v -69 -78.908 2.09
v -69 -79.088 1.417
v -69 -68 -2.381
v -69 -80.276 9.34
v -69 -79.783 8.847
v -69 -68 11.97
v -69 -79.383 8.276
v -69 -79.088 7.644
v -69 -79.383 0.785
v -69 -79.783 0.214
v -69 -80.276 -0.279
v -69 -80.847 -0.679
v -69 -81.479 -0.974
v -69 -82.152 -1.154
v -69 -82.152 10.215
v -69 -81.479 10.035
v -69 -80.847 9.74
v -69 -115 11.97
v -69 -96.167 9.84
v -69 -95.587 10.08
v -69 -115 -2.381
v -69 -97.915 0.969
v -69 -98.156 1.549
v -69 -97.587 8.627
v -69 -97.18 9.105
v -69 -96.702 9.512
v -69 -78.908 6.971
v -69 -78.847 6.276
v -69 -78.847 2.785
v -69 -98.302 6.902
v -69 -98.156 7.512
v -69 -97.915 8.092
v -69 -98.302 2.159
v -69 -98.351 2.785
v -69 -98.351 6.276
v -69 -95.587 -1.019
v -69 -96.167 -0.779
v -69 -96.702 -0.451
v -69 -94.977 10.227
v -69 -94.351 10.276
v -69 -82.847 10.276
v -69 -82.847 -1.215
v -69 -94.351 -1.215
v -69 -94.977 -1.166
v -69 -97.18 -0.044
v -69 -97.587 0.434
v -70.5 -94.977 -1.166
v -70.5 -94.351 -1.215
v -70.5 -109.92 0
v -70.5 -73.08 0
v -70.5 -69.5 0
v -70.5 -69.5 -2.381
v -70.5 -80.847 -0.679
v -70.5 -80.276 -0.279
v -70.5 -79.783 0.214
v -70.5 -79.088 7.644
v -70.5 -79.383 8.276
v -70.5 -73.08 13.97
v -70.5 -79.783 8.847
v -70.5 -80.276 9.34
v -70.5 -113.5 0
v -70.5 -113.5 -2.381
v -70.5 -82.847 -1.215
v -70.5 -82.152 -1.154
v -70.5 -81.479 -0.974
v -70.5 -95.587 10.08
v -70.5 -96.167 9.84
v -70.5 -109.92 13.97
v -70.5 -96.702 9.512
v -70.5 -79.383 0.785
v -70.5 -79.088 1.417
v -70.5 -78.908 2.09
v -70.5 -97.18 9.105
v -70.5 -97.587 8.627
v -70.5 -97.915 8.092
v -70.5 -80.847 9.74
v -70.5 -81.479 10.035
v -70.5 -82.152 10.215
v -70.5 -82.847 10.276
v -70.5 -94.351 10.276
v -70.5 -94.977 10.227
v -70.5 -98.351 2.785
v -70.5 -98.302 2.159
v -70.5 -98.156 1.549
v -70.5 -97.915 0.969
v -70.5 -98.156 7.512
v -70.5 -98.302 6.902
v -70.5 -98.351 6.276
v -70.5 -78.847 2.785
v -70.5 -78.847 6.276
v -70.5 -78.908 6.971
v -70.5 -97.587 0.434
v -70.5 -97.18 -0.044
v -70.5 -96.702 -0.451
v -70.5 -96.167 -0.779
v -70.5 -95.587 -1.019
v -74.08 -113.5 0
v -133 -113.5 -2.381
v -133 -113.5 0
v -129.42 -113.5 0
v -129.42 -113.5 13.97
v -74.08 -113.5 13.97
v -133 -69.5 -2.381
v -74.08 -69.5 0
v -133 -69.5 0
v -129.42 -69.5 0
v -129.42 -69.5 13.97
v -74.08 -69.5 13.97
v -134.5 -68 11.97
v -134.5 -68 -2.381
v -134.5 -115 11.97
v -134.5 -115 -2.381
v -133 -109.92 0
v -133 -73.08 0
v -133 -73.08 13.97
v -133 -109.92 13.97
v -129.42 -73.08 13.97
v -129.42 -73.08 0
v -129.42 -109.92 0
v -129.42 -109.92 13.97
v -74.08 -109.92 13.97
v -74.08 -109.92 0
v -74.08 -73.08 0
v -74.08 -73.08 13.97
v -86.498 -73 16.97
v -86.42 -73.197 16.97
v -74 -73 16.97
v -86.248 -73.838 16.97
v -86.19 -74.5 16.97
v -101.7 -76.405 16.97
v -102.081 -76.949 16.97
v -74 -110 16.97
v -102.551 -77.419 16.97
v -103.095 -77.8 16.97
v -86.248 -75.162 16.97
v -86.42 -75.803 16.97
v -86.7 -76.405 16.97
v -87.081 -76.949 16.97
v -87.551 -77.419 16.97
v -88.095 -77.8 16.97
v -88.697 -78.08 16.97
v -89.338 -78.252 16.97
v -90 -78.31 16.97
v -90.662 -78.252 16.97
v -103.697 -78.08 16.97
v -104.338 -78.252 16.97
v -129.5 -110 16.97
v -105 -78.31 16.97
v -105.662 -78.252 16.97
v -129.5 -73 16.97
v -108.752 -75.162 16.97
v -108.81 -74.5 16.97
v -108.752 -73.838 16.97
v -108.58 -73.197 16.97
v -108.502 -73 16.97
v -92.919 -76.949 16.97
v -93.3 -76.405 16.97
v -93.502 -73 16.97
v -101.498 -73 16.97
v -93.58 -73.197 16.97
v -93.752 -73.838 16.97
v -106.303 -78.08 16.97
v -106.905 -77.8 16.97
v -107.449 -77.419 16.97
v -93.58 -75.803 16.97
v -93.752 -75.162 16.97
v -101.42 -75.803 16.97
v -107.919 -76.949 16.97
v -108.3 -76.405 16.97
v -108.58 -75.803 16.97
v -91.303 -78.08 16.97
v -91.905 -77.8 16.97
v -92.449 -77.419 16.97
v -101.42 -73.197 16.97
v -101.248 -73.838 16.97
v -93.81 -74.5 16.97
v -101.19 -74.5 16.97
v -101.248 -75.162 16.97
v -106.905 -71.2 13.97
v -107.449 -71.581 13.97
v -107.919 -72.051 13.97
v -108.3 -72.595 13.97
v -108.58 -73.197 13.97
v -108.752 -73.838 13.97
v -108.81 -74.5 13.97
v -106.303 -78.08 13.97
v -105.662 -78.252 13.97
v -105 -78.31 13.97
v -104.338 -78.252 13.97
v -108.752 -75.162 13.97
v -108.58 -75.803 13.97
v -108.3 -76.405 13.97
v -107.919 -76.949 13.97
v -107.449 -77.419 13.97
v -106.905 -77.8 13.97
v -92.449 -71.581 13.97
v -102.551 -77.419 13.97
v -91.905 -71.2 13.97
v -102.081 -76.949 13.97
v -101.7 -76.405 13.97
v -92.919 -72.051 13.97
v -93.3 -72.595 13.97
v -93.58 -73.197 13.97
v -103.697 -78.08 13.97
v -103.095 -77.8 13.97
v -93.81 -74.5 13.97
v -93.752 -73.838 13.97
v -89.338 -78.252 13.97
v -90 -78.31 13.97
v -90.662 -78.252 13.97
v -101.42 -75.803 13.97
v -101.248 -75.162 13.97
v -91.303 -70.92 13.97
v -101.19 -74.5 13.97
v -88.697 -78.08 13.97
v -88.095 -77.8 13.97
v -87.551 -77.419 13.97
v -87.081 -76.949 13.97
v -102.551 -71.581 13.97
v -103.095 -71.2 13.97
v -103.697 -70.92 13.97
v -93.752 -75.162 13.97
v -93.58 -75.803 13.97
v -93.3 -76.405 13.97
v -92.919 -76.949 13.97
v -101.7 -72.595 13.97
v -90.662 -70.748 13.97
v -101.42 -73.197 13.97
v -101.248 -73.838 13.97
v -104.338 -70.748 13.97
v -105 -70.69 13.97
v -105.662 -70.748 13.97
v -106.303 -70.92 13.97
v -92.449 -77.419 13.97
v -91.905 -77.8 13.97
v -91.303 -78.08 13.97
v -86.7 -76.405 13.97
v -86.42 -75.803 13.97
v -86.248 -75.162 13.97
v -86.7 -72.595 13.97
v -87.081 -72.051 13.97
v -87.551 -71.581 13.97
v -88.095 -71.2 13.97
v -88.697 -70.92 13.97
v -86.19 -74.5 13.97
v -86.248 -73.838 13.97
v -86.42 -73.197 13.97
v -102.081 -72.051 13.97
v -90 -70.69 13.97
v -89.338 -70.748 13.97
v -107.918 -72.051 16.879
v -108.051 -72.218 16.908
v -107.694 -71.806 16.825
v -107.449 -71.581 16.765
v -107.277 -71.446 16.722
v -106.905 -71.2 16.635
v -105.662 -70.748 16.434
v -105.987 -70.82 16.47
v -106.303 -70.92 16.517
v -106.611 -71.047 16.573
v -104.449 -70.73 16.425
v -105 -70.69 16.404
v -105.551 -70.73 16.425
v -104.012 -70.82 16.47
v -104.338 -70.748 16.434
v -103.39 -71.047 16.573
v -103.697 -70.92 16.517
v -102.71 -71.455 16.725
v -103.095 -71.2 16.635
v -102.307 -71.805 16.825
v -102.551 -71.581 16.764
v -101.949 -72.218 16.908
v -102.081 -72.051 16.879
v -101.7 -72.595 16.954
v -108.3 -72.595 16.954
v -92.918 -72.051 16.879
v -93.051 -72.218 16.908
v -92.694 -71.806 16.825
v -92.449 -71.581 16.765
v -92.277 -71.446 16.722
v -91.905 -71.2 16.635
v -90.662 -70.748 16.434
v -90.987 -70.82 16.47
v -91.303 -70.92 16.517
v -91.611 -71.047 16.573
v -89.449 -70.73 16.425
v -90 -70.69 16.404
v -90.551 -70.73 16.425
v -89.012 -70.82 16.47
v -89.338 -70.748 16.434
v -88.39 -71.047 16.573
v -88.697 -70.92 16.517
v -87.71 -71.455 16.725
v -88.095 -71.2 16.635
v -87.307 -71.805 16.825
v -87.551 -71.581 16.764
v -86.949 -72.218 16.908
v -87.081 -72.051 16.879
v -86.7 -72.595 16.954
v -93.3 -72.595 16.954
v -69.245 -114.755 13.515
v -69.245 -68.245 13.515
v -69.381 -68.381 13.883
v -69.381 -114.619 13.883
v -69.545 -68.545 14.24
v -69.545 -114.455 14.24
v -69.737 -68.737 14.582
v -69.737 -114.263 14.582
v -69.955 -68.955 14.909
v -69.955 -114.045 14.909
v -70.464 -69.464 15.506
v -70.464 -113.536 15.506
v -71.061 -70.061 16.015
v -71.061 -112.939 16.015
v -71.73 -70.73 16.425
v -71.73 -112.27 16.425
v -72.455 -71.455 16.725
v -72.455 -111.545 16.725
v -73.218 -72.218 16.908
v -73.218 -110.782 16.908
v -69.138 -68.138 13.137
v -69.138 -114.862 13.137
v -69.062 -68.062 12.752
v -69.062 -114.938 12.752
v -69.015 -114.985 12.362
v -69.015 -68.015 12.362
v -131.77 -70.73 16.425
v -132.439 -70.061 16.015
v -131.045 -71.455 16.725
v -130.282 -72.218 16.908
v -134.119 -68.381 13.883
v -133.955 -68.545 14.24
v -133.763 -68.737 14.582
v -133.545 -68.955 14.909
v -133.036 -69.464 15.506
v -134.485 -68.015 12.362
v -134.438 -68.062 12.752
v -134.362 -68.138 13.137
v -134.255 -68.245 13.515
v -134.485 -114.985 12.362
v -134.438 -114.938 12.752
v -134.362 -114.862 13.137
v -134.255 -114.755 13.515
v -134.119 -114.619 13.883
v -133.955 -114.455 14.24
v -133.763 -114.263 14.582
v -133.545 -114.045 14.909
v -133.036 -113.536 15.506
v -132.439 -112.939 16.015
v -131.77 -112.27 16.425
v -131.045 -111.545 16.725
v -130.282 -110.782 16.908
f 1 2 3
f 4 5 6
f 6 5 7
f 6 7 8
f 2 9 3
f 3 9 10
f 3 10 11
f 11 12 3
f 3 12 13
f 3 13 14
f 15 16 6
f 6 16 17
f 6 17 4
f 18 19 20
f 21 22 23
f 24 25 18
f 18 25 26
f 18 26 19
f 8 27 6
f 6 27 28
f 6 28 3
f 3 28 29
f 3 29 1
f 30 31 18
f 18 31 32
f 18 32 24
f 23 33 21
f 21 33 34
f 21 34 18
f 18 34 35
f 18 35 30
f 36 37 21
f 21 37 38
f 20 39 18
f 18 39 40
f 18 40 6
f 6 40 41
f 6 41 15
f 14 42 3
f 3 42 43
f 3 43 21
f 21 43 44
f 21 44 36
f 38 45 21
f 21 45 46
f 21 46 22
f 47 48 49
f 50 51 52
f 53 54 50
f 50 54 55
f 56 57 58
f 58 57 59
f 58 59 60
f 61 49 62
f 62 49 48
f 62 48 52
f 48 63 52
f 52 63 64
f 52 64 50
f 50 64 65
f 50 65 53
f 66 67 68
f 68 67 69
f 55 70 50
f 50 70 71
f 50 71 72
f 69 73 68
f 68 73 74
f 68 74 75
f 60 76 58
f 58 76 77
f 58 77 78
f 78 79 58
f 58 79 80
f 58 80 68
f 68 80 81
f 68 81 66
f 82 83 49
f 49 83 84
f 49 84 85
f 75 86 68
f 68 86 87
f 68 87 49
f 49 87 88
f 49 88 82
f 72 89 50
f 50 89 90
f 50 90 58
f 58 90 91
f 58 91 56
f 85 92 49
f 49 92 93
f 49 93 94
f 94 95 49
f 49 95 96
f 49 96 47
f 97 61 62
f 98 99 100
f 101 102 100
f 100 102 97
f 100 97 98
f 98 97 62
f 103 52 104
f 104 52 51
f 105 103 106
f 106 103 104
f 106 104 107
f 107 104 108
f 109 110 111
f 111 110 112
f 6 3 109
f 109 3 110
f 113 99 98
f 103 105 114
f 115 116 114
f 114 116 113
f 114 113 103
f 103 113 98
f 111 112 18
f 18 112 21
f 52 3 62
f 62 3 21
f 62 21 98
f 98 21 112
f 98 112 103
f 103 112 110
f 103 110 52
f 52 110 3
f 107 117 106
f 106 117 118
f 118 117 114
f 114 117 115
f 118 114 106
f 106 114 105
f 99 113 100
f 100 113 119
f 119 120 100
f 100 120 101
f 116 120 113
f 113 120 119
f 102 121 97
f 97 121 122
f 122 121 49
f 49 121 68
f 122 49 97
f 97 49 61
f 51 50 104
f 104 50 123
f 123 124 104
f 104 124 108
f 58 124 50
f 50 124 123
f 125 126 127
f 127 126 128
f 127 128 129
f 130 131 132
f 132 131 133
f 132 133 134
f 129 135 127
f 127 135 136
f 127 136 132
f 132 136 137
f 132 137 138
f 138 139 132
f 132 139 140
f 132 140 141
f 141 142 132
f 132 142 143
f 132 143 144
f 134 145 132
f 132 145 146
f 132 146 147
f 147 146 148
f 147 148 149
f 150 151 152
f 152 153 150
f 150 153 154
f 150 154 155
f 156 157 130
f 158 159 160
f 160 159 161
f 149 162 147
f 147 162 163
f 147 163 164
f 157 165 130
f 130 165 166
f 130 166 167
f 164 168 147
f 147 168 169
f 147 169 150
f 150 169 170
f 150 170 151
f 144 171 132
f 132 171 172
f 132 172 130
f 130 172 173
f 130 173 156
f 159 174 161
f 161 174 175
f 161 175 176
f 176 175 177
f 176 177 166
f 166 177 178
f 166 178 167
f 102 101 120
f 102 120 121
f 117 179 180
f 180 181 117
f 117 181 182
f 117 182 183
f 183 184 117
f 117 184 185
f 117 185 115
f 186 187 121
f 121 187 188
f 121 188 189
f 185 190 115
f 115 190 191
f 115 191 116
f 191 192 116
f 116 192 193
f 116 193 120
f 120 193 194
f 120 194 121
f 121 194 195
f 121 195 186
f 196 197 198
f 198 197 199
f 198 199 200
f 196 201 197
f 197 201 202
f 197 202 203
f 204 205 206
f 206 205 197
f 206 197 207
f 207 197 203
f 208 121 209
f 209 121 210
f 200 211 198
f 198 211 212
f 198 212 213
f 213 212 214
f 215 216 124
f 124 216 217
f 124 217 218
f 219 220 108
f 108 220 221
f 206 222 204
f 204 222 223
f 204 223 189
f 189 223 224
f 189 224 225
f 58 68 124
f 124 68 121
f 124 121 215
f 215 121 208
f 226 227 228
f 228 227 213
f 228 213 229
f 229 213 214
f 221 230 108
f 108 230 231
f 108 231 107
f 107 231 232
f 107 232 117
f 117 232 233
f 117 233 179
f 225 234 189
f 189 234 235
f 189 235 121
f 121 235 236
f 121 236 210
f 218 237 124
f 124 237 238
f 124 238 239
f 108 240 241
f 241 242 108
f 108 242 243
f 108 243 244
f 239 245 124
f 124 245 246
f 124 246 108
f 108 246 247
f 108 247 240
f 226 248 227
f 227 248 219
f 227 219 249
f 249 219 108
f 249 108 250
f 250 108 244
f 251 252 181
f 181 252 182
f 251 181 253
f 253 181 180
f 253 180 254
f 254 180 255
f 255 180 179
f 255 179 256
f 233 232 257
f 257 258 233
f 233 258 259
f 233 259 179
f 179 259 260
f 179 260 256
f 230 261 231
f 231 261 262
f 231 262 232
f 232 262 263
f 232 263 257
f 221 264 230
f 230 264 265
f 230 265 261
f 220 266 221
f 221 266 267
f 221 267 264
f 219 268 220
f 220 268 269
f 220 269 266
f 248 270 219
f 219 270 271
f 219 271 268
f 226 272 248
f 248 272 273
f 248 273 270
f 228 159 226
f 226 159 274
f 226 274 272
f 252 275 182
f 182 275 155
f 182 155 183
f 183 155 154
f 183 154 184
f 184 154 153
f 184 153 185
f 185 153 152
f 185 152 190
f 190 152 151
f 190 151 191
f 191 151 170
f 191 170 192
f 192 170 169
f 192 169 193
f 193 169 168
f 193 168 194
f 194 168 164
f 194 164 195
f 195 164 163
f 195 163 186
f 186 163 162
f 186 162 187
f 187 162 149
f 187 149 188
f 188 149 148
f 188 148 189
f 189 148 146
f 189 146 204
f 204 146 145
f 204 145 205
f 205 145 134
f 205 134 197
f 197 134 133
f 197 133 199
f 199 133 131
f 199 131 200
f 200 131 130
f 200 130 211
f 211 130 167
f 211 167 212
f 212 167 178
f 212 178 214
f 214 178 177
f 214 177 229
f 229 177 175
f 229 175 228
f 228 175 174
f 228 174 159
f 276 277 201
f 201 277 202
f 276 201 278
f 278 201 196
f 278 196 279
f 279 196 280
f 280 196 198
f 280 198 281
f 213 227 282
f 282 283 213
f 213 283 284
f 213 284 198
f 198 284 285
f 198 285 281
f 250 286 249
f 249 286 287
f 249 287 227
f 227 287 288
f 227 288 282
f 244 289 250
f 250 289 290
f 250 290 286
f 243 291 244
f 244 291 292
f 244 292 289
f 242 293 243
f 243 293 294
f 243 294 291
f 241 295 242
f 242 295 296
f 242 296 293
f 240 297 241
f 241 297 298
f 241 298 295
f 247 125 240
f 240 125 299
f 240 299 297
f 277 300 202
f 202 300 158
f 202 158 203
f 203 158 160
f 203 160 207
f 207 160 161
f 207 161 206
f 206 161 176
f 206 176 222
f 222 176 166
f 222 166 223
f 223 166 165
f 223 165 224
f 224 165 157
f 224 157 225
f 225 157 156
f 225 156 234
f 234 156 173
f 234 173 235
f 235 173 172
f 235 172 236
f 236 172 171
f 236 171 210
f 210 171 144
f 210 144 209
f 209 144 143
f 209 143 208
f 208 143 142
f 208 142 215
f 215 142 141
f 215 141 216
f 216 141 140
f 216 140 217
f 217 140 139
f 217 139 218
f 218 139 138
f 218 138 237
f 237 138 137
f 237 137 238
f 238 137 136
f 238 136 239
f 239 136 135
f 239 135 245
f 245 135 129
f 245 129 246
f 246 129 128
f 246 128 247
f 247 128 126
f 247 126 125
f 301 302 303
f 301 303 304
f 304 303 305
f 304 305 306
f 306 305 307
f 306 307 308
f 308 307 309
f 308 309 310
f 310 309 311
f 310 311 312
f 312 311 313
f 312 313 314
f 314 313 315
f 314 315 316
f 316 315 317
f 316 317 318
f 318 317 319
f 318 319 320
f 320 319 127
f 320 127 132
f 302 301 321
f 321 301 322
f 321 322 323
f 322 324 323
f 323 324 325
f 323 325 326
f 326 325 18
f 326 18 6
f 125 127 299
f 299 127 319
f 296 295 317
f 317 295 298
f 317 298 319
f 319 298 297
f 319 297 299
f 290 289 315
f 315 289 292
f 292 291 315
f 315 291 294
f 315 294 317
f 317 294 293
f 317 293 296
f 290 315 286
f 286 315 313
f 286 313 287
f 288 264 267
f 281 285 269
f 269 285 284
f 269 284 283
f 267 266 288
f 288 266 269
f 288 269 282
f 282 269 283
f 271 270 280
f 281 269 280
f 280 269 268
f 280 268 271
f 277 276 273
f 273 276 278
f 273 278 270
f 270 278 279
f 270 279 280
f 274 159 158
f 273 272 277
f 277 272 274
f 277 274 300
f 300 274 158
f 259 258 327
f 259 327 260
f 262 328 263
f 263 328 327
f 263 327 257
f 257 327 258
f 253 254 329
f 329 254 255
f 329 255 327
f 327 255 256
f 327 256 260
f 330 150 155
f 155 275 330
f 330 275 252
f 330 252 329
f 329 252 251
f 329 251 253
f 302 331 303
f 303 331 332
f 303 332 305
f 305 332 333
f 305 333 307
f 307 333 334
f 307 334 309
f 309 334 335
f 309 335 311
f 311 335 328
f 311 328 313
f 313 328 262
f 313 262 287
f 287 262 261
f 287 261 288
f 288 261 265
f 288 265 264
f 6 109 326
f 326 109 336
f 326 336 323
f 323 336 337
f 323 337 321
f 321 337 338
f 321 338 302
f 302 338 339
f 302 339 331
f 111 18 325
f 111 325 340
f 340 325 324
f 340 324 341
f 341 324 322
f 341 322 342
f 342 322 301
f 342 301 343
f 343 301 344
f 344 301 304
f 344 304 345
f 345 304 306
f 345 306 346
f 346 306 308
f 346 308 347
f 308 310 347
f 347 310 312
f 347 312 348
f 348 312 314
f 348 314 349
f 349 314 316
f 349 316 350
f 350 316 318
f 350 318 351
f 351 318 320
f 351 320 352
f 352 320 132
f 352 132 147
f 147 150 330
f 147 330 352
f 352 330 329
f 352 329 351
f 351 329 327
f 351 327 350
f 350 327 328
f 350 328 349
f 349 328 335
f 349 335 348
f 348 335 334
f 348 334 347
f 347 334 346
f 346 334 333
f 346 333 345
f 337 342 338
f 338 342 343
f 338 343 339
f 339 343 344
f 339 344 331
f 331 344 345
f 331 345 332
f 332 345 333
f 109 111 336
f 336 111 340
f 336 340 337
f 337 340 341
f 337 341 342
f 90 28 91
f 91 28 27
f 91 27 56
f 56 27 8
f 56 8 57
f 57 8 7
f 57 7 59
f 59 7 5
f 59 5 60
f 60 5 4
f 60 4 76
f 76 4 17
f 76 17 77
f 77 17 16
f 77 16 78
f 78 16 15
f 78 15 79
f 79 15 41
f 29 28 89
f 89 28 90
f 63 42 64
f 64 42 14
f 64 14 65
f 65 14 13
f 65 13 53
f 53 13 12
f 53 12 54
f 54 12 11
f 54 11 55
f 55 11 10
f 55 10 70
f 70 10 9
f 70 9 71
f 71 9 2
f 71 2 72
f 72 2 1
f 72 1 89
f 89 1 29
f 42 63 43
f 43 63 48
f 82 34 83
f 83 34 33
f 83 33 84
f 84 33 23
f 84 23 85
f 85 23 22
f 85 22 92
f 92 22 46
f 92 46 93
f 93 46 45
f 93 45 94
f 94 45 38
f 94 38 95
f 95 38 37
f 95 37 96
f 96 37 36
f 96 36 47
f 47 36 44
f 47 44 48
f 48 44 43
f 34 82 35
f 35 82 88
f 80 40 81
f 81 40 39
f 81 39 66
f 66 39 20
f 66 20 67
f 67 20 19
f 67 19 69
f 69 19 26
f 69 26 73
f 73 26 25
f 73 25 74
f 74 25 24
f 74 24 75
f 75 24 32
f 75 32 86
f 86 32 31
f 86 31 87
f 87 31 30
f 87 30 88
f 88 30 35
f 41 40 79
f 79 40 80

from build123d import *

# Parameters (mm, degrees)
BOSS_EXTRUDE1_DEPTH      = 13.97
BOSS_EXTRUDE1_DEPTH_BACK = 2.38125
SKETCH1_W                = 65.5
SKETCH1_H                = 47
SKETCH1_W_2              = 62.5
SKETCH1_H_2              = 44
SKETCH2_W                = 3.58
SKETCH2_H                = 3.58
BOSS_EXTRUDE2_DEPTH      = 13.97
SKETCH3_W                = 65.5
SKETCH3_H                = 47
SKETCH3_R                = 3.81
BOSS_EXTRUDE3_DEPTH      = 3
FILLET1_R                = 5
CUT_EXTRUDE1_DEPTH       = 1.5


with BuildPart() as part:
    # Sketch1 → Boss-Extrude1 (new, two sides: drawn at the far end of the back side and taken through both)
    with BuildSketch(Plane.XY.offset(-BOSS_EXTRUDE1_DEPTH_BACK)):
        with Locations((-101.75, -91.5)):
            Rectangle(SKETCH1_W, SKETCH1_H)
        with Locations((-101.75, -91.5)):
            Rectangle(SKETCH1_W_2, SKETCH1_H_2, mode=Mode.SUBTRACT)
    extrude(amount=BOSS_EXTRUDE1_DEPTH + BOSS_EXTRUDE1_DEPTH_BACK)

    # Sketch2 → Boss-Extrude2 (add)
    with BuildSketch(Plane.XY.offset(13.97)):
        with Locations((-131.21, -71.29)):
            Rectangle(SKETCH2_W, SKETCH2_H)
        with Locations((-131.21, -111.71)):
            Rectangle(SKETCH2_W, SKETCH2_H)
        with Locations((-72.29, -111.71)):
            Rectangle(SKETCH2_W, SKETCH2_H)
        with Locations((-72.29, -71.29)):
            Rectangle(SKETCH2_W, SKETCH2_H)
    extrude(amount=-BOSS_EXTRUDE2_DEPTH)

    # Sketch3 → Boss-Extrude3 (add)
    with BuildSketch(Plane.XY.offset(13.97)):
        with Locations((-101.75, -91.5)):
            Rectangle(SKETCH3_W, SKETCH3_H)
        with Locations((-105, -74.5)):
            Circle(SKETCH3_R, mode=Mode.SUBTRACT)
        with Locations((-90, -74.5)):
            Circle(SKETCH3_R, mode=Mode.SUBTRACT)
    extrude(amount=BOSS_EXTRUDE3_DEPTH)

    # Fillet1
    # the kernel refuses this fillet: 5 mm, written as the material it takes off along each edge
    with BuildSketch(Plane(origin=(-56.5, -68, 16.97), x_dir=(0, -1, 0), z_dir=(-1, 0, 0))) as fillet1_piece_1:
        with BuildLine():
            CenterArc((FILLET1_R, -FILLET1_R), FILLET1_R, 90, 90)
            Line((0, -FILLET1_R), (0, 0))
            Line((0, 0), (FILLET1_R, 0))
        make_face()
    extrude(amount=90.5, mode=Mode.SUBTRACT)
    with BuildSketch(Plane(origin=(-134.5, -55.5, 16.97), x_dir=(0, 0, -1), z_dir=(0, -1, 0)), Plane(origin=(-69, -127.5, 16.97), x_dir=(0, 0, -1), z_dir=(0, 1, 0))) as fillet1_piece_2:
        with BuildLine():
            CenterArc((FILLET1_R, FILLET1_R), FILLET1_R, 180, 90)
            Line((0, FILLET1_R), (0, 0))
            Line((0, 0), (FILLET1_R, 0))
        make_face()
    extrude(amount=72, mode=Mode.SUBTRACT)
    with BuildSketch(Plane(origin=(-147, -115, 16.97), x_dir=(0, 0, -1), z_dir=(1, 0, 0))) as fillet1_piece_3:
        with BuildLine():
            CenterArc((FILLET1_R, FILLET1_R), FILLET1_R, 180, 90)
            Line((0, FILLET1_R), (0, 0))
            Line((0, 0), (FILLET1_R, 0))
        make_face()
    extrude(amount=90.5, mode=Mode.SUBTRACT)

    # Sketch4 → Cut-Extrude1 (cut)
    with BuildSketch(Plane(origin=(-69, 0, 0), x_dir=(0, 0, -1), z_dir=(1, 0, 0))):
        with BuildLine():
            ThreePointArc((-10.276157649, -82.847028828), (-9.104584774, -80.018601703), (-6.276157649, -78.847028828))
            Line((-6.276157649, -78.847028828), (-2.784881052, -78.847028828))
            ThreePointArc((-2.784881052, -78.847028828), (0.043546073, -80.018601703), (1.215118948, -82.847028828))
            Line((1.215118948, -82.847028828), (1.215118948, -94.351328143))
            ThreePointArc((1.215118948, -94.351328143), (0.043546073, -97.179755268), (-2.784881052, -98.351328143))
            Line((-2.784881052, -98.351328143), (-6.276157649, -98.351328143))
            ThreePointArc((-6.276157649, -98.351328143), (-9.104584774, -97.179755268), (-10.276157649, -94.351328143))
            Line((-10.276157649, -94.351328143), (-10.276157649, -82.847028828))
        make_face()
    extrude(amount=-CUT_EXTRUDE1_DEPTH, mode=Mode.SUBTRACT)


solid = part.part
